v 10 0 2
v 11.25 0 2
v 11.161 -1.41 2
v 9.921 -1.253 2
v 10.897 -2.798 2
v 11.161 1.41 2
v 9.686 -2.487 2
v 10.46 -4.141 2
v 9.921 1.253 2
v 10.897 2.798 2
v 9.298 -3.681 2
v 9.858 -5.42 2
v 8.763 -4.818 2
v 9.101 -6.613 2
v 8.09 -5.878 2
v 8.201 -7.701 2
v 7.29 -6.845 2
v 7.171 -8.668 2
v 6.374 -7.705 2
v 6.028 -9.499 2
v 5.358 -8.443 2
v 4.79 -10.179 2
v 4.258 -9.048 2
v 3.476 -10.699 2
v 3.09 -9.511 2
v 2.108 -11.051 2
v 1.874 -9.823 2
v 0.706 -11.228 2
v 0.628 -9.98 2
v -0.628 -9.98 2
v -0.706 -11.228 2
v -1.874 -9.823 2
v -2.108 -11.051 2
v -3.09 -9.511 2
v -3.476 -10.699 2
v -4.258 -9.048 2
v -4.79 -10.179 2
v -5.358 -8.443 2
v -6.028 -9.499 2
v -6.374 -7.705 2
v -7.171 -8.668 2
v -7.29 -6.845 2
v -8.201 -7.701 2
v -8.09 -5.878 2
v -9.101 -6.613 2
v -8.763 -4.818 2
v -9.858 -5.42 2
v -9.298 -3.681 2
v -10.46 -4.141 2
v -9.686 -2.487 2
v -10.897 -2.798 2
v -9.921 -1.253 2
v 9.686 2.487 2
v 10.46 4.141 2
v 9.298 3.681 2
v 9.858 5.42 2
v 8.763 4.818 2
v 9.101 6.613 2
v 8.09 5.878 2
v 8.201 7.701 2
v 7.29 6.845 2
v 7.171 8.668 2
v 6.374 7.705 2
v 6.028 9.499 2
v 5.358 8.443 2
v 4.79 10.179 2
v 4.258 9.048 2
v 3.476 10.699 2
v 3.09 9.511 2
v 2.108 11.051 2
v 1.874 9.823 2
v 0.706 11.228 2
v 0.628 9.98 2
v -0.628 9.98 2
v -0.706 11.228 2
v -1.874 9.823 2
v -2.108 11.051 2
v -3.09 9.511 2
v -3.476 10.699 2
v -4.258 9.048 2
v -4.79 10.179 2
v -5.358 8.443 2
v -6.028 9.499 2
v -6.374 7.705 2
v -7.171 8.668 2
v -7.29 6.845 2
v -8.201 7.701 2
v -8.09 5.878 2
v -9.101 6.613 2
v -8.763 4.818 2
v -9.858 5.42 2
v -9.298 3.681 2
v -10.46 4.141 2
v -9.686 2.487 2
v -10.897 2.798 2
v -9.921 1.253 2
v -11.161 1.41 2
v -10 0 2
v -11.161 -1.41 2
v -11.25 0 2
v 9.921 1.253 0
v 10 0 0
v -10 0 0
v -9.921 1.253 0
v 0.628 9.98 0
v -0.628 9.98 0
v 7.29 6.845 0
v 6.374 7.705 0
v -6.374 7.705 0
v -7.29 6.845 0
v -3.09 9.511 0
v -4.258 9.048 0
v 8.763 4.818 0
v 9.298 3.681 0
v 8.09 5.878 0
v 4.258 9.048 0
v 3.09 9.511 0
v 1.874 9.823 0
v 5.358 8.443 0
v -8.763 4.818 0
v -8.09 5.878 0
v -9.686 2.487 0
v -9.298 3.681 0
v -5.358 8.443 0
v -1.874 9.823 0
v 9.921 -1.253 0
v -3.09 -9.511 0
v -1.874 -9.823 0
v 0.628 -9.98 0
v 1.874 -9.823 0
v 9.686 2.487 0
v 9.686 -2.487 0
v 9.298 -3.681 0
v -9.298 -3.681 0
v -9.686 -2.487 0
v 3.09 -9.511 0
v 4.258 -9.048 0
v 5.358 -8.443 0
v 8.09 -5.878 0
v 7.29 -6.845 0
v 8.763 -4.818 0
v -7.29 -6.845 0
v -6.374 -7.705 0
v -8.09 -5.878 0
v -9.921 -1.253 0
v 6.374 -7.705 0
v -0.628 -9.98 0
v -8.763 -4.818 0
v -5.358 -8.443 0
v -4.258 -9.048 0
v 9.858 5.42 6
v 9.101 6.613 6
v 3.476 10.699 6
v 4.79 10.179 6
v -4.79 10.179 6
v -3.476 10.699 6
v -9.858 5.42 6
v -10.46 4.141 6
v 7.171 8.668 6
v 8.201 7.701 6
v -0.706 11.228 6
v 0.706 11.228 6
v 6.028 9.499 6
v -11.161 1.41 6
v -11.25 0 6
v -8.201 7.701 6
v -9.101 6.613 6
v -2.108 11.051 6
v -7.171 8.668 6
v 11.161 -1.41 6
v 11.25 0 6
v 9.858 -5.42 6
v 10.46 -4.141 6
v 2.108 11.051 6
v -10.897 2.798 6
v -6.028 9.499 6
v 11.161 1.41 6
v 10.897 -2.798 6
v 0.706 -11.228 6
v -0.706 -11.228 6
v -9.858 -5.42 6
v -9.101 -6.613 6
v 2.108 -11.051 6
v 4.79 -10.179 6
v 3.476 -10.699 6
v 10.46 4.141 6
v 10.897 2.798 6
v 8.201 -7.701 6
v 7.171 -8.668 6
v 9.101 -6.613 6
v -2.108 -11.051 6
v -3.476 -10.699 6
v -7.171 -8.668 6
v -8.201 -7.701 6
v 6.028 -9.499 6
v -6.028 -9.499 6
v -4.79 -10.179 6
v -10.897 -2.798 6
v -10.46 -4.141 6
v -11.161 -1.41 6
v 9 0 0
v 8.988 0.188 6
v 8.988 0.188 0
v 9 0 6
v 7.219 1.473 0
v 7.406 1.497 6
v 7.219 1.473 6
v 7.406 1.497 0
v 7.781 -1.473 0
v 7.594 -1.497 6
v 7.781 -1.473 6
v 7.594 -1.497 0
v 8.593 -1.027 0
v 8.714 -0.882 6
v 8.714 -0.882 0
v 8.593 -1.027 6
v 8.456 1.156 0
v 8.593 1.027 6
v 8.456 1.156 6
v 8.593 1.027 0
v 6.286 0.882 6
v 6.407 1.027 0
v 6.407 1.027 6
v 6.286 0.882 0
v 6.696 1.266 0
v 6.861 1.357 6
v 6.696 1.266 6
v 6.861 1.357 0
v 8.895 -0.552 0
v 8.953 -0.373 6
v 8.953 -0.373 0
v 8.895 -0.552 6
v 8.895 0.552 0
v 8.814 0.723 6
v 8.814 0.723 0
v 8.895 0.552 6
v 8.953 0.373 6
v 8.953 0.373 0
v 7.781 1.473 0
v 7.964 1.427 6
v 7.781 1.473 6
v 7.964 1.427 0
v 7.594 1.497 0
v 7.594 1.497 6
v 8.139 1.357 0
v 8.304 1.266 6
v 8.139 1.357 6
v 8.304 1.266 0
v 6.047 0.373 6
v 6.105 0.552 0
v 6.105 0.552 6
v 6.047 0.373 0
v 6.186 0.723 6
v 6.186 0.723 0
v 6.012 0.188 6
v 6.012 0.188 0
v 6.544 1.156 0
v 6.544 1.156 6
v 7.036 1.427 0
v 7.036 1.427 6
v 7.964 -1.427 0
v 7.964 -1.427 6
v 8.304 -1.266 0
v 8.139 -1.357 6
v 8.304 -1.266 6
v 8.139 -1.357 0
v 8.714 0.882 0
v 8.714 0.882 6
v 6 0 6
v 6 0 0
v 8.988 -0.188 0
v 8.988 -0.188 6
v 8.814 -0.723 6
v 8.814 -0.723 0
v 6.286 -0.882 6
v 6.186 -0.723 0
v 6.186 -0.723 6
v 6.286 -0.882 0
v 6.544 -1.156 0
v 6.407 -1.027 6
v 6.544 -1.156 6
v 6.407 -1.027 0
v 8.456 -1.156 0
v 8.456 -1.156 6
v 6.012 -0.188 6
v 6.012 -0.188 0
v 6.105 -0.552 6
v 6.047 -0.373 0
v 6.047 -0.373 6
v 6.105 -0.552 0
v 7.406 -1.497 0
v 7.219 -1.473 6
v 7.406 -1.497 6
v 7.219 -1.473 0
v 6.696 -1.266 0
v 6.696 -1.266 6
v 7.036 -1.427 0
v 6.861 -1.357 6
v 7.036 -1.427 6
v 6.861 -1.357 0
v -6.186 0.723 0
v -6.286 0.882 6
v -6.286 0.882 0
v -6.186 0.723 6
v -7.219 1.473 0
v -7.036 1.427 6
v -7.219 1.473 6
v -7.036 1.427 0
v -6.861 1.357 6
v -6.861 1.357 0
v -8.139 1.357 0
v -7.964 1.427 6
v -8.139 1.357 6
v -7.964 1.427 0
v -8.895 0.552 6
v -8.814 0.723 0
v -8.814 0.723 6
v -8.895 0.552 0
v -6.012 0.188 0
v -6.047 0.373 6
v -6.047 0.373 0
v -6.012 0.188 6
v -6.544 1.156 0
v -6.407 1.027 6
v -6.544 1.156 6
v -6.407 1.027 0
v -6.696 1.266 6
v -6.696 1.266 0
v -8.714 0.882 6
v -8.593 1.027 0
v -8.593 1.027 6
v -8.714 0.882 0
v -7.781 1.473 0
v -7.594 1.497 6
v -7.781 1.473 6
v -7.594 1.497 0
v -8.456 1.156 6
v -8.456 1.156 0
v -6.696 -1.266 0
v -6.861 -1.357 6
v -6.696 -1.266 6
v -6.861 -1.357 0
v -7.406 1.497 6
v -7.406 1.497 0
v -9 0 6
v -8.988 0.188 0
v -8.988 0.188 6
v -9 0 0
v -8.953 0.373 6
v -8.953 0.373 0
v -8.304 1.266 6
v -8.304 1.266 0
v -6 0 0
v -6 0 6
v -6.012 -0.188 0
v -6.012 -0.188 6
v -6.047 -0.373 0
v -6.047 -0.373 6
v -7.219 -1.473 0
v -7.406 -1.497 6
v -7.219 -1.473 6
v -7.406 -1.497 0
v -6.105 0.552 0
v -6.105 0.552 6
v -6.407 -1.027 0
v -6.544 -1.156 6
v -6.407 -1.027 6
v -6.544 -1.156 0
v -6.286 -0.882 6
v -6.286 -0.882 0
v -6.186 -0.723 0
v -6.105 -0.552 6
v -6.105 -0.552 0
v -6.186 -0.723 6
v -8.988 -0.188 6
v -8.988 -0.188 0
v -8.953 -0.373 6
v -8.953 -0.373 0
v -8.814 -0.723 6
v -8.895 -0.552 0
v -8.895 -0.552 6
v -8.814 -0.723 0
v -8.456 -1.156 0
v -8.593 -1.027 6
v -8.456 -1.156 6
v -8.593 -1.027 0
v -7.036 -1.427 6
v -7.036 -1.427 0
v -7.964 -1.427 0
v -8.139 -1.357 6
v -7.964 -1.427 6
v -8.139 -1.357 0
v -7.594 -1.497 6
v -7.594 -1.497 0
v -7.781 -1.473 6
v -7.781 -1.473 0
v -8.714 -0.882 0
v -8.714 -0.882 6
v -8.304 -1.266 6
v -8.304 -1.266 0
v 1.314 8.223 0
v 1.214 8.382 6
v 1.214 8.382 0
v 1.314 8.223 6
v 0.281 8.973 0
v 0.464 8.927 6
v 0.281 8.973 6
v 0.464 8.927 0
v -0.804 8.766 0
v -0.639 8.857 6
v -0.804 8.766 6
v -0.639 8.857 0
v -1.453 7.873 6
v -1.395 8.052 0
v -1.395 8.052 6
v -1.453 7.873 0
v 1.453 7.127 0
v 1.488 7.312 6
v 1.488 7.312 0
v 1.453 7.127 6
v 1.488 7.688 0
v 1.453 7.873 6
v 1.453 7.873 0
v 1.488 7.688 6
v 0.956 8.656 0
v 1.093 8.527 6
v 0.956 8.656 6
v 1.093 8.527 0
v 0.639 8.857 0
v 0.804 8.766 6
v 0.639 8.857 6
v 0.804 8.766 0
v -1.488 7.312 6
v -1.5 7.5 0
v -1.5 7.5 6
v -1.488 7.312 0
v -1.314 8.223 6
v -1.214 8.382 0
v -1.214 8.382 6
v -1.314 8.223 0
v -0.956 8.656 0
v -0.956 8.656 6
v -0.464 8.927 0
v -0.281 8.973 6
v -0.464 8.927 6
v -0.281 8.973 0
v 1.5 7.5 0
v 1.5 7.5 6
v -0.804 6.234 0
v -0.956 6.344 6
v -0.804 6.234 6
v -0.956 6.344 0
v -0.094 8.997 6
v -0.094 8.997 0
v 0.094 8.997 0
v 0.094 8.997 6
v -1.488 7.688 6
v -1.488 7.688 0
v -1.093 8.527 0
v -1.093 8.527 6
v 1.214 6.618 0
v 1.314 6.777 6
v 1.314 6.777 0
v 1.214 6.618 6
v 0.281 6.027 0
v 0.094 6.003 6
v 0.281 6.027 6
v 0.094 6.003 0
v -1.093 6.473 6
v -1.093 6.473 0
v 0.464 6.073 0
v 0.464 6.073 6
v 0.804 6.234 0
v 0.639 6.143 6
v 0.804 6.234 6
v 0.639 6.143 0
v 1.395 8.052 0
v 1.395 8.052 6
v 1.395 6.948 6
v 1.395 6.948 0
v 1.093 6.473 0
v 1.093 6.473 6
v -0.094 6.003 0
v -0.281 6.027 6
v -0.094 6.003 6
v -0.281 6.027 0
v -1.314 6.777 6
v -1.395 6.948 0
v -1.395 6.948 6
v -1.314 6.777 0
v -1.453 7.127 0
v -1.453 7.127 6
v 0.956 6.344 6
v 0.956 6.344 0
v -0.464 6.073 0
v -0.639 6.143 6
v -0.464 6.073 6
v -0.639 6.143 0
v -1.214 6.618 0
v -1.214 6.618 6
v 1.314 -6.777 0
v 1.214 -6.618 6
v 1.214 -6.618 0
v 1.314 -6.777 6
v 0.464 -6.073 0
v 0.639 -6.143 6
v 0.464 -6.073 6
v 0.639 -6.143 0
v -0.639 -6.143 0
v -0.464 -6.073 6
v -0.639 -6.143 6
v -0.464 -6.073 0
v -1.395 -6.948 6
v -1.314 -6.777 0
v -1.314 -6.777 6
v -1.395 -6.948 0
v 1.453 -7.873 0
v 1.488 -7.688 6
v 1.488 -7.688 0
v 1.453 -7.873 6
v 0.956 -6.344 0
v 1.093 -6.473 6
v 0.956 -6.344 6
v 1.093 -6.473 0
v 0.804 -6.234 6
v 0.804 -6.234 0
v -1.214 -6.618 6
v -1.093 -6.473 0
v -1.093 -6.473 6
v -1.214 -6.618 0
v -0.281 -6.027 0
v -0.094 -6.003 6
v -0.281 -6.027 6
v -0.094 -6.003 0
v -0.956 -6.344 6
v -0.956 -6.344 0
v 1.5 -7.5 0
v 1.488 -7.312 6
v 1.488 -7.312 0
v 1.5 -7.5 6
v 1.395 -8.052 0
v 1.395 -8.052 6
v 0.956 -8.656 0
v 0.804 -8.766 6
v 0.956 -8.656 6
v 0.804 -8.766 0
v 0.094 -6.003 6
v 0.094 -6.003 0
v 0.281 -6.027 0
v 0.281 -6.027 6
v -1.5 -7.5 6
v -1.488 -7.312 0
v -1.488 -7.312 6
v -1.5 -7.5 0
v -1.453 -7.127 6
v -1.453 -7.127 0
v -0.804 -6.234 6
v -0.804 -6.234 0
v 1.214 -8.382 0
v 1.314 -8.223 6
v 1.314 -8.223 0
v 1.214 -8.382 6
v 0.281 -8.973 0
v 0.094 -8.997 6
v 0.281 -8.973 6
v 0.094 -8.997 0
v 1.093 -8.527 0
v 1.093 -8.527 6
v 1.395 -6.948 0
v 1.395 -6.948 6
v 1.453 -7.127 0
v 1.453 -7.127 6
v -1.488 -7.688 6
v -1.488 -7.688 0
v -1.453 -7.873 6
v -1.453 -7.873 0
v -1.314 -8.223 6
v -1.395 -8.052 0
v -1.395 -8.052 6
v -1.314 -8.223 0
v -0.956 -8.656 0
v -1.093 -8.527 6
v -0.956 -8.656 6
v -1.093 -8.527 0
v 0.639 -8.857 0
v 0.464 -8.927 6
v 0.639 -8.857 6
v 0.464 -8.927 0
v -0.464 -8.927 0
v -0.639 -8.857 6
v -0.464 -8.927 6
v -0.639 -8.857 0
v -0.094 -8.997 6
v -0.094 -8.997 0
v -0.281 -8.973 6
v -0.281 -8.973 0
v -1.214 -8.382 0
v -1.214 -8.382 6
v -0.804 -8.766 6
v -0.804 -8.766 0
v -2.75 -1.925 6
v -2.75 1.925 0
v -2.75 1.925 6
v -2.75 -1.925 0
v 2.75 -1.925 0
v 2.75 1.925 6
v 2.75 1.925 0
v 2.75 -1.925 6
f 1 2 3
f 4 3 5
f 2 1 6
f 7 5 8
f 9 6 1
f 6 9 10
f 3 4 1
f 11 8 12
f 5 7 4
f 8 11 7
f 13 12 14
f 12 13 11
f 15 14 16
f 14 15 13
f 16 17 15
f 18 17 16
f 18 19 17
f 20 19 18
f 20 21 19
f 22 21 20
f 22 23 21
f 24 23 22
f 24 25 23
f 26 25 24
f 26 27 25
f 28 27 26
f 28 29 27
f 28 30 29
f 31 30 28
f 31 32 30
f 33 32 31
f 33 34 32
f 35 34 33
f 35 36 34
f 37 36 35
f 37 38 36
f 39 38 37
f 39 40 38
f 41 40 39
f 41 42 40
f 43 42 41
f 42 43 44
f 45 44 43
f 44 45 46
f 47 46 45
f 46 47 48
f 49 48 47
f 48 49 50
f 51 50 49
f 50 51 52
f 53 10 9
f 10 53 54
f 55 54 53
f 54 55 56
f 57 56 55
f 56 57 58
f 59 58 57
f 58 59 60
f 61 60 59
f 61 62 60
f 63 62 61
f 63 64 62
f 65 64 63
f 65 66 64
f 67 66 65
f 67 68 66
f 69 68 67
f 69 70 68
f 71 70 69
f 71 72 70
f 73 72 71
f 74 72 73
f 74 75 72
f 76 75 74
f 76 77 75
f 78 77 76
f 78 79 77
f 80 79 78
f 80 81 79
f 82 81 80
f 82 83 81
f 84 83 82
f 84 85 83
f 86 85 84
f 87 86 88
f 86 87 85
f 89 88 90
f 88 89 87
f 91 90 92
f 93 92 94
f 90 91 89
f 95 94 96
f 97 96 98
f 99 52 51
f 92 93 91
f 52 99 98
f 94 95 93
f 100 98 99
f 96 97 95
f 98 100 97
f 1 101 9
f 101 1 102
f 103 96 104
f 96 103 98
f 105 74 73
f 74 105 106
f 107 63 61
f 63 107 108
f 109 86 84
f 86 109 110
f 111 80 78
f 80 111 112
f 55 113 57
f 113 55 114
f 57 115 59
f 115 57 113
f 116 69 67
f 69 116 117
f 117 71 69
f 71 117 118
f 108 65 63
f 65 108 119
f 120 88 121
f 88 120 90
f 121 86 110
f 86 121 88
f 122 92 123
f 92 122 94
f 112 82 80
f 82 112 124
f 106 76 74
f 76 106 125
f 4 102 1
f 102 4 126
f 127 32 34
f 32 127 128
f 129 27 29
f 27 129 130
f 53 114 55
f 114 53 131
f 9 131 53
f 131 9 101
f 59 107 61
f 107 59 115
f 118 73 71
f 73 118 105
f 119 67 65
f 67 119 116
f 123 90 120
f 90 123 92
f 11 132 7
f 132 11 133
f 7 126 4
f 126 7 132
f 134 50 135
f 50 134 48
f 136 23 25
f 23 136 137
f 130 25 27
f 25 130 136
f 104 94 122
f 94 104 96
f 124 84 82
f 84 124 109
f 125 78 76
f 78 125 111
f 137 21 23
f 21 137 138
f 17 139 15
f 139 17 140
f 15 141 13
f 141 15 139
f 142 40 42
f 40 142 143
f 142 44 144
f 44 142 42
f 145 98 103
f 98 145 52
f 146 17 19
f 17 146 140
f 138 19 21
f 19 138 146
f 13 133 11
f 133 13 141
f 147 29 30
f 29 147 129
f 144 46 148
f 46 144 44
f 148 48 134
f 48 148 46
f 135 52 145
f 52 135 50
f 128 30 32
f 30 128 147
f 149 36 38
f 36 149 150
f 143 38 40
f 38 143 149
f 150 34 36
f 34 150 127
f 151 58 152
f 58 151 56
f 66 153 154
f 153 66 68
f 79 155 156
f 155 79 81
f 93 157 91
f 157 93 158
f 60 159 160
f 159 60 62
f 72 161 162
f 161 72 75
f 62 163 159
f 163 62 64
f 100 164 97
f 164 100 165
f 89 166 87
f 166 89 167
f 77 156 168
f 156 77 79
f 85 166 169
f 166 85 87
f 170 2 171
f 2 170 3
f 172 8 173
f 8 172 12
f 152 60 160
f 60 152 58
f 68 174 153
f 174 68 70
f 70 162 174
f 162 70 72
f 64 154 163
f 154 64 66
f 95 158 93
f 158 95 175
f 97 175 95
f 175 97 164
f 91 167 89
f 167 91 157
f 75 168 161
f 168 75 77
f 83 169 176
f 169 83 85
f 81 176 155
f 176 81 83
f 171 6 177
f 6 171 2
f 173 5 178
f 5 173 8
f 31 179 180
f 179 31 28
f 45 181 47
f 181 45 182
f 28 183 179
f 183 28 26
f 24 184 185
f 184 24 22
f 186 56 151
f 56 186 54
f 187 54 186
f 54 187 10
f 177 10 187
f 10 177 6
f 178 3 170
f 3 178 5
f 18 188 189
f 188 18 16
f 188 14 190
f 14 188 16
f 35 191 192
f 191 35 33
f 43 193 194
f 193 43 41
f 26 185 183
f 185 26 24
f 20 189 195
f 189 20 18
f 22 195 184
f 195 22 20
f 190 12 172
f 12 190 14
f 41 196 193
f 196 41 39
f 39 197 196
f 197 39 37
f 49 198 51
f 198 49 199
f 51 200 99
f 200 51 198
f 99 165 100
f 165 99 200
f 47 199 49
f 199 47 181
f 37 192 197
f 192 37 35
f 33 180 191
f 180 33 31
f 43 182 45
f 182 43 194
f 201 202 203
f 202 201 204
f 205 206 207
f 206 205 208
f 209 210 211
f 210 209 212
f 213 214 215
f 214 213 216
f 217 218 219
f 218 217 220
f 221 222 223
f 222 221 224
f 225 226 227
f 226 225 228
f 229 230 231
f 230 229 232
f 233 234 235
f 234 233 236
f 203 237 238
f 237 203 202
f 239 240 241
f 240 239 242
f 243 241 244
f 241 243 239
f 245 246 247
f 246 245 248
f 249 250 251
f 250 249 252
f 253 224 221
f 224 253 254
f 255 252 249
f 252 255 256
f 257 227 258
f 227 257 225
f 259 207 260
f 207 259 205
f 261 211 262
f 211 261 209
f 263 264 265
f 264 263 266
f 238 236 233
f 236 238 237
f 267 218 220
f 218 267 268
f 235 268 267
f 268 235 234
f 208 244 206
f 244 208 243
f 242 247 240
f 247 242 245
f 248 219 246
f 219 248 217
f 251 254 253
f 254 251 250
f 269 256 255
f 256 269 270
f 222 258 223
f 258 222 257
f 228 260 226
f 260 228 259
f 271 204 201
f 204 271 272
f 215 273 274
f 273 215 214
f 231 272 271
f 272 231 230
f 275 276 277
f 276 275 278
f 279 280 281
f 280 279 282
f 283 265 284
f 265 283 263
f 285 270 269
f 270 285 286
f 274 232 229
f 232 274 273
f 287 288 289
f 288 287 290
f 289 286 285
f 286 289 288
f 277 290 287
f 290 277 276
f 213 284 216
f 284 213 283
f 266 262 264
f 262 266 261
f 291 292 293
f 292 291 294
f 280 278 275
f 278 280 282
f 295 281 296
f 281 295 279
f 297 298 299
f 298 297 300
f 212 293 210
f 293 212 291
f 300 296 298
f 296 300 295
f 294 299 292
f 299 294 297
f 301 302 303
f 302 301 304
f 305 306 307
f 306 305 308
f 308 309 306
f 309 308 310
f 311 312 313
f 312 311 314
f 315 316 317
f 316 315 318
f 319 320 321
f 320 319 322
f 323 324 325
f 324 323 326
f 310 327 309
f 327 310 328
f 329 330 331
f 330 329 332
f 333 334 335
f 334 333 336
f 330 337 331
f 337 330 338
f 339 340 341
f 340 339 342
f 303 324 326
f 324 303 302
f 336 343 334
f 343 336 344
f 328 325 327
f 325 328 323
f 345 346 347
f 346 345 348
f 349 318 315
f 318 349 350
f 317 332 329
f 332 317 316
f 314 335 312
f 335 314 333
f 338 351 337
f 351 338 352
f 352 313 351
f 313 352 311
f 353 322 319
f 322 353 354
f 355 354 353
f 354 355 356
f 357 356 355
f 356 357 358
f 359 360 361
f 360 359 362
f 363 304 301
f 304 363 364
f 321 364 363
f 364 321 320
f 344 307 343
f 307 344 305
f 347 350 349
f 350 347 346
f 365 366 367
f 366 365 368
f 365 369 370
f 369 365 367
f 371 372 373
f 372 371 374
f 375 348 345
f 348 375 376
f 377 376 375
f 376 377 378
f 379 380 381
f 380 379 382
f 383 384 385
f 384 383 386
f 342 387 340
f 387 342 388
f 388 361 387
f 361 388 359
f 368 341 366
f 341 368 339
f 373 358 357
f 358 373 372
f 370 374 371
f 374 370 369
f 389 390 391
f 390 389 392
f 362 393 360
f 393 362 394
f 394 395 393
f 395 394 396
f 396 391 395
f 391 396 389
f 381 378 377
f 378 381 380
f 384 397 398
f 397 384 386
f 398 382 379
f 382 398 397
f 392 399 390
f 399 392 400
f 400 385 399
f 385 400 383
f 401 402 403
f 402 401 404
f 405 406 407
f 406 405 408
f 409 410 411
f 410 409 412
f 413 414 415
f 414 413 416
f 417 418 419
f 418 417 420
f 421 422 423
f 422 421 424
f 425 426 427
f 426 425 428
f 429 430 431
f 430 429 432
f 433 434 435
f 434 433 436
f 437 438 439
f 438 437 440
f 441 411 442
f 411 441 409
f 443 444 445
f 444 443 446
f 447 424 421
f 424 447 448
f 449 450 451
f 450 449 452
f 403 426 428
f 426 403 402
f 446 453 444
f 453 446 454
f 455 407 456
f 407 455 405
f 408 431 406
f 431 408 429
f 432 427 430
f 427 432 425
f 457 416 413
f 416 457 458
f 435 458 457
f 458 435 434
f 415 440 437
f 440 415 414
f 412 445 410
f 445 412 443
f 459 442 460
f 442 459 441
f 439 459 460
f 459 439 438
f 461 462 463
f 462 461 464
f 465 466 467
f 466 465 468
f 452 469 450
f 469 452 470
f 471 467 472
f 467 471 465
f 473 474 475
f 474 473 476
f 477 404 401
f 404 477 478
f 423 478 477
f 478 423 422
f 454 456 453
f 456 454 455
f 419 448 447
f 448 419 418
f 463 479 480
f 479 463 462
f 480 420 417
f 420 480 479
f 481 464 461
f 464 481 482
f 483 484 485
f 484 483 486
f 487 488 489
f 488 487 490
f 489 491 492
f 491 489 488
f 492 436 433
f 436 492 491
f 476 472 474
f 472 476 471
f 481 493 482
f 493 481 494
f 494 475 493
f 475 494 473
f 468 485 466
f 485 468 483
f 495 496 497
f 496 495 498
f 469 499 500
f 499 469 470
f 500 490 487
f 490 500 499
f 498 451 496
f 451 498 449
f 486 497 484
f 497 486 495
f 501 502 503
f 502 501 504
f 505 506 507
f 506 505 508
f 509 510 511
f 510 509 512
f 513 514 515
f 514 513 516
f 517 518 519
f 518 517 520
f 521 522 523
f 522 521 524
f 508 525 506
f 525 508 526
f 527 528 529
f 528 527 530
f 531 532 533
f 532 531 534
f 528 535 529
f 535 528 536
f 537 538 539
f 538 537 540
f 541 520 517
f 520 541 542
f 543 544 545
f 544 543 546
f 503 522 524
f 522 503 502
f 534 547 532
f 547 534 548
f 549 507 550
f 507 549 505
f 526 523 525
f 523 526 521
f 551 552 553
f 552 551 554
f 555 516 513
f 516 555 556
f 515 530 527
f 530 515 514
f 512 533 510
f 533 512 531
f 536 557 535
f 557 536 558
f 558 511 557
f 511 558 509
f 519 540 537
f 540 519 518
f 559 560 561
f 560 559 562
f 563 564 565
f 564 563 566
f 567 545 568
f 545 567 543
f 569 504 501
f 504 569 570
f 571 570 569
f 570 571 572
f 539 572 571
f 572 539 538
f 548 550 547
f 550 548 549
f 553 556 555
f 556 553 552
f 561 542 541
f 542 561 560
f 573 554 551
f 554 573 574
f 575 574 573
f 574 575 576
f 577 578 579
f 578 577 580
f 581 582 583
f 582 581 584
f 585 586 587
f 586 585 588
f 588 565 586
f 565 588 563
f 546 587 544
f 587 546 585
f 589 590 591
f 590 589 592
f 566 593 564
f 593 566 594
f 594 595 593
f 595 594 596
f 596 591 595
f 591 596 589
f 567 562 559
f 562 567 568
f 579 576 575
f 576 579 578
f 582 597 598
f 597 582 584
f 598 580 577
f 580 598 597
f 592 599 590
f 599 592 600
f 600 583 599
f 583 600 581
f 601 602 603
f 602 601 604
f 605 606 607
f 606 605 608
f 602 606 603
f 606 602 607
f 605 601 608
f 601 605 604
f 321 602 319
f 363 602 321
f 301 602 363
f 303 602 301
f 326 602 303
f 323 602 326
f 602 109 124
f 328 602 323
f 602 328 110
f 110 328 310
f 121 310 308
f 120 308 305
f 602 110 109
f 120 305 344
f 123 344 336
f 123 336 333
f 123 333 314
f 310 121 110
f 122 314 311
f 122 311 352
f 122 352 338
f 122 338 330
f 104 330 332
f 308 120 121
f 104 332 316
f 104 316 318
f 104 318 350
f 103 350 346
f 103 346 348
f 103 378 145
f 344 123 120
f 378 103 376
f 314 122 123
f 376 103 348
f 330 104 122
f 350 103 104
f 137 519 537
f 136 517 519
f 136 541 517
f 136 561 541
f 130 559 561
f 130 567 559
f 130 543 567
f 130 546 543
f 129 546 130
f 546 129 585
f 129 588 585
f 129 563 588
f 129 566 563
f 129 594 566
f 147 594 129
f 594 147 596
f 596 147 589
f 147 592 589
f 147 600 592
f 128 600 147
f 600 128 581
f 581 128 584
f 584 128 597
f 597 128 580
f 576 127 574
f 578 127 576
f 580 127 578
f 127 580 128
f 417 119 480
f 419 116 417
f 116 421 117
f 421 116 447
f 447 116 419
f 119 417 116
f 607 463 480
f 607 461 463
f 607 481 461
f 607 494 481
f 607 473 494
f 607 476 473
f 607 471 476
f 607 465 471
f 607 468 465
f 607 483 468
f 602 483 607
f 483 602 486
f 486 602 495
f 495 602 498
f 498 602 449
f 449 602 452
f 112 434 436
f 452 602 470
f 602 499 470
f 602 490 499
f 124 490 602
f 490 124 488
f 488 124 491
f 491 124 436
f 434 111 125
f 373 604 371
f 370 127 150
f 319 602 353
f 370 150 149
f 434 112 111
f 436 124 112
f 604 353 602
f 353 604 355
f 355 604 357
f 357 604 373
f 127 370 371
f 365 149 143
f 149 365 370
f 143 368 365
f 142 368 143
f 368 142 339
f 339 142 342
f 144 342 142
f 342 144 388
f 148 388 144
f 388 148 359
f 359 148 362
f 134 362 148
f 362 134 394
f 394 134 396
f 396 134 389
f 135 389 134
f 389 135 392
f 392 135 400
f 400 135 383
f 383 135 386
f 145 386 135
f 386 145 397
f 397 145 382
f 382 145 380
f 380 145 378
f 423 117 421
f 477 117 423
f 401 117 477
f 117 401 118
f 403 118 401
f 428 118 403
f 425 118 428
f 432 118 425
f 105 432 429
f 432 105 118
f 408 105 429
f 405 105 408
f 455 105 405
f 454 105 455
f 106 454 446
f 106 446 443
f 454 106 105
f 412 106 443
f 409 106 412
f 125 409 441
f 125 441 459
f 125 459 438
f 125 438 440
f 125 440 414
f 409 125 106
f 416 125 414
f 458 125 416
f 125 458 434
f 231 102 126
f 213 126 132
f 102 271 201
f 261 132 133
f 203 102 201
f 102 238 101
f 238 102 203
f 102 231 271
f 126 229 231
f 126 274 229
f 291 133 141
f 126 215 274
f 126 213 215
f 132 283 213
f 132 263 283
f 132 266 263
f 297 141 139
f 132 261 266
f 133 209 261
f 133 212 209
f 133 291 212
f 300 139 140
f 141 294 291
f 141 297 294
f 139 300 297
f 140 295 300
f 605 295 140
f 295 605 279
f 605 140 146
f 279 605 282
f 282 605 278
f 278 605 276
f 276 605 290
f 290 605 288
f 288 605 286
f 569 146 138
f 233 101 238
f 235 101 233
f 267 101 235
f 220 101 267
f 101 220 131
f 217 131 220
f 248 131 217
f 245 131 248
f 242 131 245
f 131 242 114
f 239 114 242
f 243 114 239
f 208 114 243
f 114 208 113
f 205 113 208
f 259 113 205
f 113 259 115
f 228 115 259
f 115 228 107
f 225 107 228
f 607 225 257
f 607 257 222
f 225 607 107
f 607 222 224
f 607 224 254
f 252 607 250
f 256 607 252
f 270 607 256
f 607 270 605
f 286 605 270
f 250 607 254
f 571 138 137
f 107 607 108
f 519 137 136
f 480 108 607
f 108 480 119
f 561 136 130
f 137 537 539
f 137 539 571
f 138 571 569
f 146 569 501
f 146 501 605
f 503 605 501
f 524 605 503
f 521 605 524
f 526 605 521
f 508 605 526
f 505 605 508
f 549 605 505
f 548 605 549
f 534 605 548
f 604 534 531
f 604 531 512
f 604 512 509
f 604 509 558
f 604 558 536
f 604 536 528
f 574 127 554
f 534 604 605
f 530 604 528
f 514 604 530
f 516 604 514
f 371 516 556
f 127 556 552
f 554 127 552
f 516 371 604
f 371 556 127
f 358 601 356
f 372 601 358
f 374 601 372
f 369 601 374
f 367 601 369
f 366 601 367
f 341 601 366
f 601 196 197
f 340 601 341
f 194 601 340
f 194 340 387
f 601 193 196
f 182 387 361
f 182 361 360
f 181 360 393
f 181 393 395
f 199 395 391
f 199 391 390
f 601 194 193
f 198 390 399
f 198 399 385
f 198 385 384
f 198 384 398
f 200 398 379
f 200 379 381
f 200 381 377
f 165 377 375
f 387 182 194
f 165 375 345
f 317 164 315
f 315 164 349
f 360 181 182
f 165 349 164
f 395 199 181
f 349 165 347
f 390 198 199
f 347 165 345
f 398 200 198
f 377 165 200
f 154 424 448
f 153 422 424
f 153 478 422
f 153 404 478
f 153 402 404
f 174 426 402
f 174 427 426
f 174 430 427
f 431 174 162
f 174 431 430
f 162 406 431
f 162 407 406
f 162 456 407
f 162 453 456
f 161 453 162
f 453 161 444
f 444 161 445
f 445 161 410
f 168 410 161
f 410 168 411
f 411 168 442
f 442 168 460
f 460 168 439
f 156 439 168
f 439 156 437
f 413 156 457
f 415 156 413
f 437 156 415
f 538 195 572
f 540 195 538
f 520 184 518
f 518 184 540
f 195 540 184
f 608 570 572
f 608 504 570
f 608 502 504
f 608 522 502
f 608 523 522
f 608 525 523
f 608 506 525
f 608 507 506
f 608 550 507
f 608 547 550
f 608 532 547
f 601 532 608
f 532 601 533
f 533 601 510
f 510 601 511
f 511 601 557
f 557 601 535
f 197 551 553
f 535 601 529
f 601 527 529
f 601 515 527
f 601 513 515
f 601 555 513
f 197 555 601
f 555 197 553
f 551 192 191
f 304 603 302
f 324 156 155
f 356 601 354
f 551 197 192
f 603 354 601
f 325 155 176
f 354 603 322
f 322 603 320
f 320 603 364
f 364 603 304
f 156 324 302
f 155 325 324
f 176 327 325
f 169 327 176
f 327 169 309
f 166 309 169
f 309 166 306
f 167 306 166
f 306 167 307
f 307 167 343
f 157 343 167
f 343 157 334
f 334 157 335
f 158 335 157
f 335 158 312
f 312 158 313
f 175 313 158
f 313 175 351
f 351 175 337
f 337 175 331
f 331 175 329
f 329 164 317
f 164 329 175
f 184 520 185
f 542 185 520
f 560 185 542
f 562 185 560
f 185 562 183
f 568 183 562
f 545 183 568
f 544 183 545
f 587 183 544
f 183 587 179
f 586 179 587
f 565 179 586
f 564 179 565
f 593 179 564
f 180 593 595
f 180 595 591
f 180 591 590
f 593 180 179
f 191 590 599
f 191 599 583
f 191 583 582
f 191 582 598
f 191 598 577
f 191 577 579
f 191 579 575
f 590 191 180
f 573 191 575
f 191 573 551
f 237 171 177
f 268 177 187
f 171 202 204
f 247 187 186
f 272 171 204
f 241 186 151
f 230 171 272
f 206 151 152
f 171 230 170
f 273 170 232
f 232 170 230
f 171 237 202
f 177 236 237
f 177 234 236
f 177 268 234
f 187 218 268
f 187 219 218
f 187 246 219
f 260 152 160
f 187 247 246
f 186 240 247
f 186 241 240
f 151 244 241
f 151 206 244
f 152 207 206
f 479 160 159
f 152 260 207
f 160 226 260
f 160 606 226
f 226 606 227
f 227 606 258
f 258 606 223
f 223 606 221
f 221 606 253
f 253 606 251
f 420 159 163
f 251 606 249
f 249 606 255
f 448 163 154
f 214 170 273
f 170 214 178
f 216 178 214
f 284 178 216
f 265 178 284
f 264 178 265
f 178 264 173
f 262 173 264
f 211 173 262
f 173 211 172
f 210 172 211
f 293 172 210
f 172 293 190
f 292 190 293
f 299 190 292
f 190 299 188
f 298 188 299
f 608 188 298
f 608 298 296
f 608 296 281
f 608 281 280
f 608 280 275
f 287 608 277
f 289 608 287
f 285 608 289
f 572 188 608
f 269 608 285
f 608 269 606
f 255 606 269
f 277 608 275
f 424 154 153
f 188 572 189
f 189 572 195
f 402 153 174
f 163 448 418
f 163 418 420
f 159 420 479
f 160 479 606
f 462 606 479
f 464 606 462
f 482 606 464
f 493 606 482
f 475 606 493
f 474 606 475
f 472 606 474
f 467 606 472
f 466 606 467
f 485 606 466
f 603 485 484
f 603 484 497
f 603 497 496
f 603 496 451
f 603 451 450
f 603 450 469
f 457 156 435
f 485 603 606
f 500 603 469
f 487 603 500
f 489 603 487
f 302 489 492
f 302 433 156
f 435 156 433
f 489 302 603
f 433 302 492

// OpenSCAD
$fn = 50;


difference() {
	union() {
		*color(alpha = 1.0000000000, c = "gray") {
			translate(v = [0, 7, 0]) {
				linear_extrude(height = 12) {
					text(font = "Arial:style=Bold", halign = "center", size = 4.5000000000, text = "COMMENT bearing_plate_plate", valign = "center");
				}
			}
		}
		*color(alpha = 1.0000000000, c = "gray") {
			translate(v = [0, 14, 0]) {
				linear_extrude(height = 12) {
					text(font = "Arial:style=Bold", halign = "center", size = 4.5000000000, text = "COMMENT description oobb_cylinder_shape_positive_type_12_depth_3_width_12_height_12_thickness_6704_bearing_motor_gearmotor_01_shaft_11.7_radius_all_mode", valign = "center");
				}
			}
		}
		translate(v = [0, 0, -6.0000000000]) {
			cylinder(h = 12, r = 11.7000000000);
		}
		*color(alpha = 1.0000000000, c = "gray") {
			translate(v = [0, 7, 0]) {
				linear_extrude(height = 1) {
					text(font = "Arial:style=Bold", halign = "center", size = 4.5000000000, text = "COMMENT bearing_plate_slice", valign = "center");
				}
			}
		}
	}
	union() {
		translate(v = [18.0000000000, 0, 6.0000000000]) {
			rotate(a = [0, 180, 30.0000000000]) {
				difference() {
					union() {
						translate(v = [0, 0, -1.7000000000]) {
							cylinder(h = 1.7000000000, r1 = 1.5000000000, r2 = 2.4000000000);
						}
						translate(v = [0, 0, -12.0000000000]) {
							cylinder(h = 12, r = 1.5000000000);
						}
						translate(v = [0, 0, -12.0000000000]) {
							linear_extrude(height = 2.5000000000) {
								polygon(points = [[3.1735000000, 0.0000000000], [1.5867500000, 2.7483316189], [-1.5867500000, 2.7483316189], [-3.1735000000, 0.0000000000], [-1.5867500000, -2.7483316189], [1.5867500000, -2.7483316189]]);
							}
						}
						translate(v = [0, 0, -12.0000000000]) {
							cylinder(h = 12, r = 1.8000000000);
						}
						translate(v = [0, 0, -12.0000000000]) {
							linear_extrude(height = 2.5000000000) {
								polygon(points = [[3.1735000000, 0.0000000000], [1.5867500000, 2.7483316189], [-1.5867500000, 2.7483316189], [-3.1735000000, 0.0000000000], [-1.5867500000, -2.7483316189], [1.5867500000, -2.7483316189]]);
							}
						}
						translate(v = [0, 0, -12.0000000000]) {
							cylinder(h = 12, r = 1.5000000000);
						}
						translate(v = [0, 0, -12.0000000000]) {
							linear_extrude(height = 2.5000000000) {
								polygon(points = [[3.1735000000, 0.0000000000], [1.5867500000, 2.7483316189], [-1.5867500000, 2.7483316189], [-3.1735000000, 0.0000000000], [-1.5867500000, -2.7483316189], [1.5867500000, -2.7483316189]]);
							}
						}
					}
					union();
				}
			}
		}
		translate(v = [-18.0000000000, 0, 6.0000000000]) {
			rotate(a = [0, 180, 30.0000000000]) {
				difference() {
					union() {
						translate(v = [0, 0, -1.7000000000]) {
							cylinder(h = 1.7000000000, r1 = 1.5000000000, r2 = 2.4000000000);
						}
						translate(v = [0, 0, -12.0000000000]) {
							cylinder(h = 12, r = 1.5000000000);
						}
						translate(v = [0, 0, -12.0000000000]) {
							linear_extrude(height = 2.5000000000) {
								polygon(points = [[3.1735000000, 0.0000000000], [1.5867500000, 2.7483316189], [-1.5867500000, 2.7483316189], [-3.1735000000, 0.0000000000], [-1.5867500000, -2.7483316189], [1.5867500000, -2.7483316189]]);
							}
						}
						translate(v = [0, 0, -12.0000000000]) {
							cylinder(h = 12, r = 1.8000000000);
						}
						translate(v = [0, 0, -12.0000000000]) {
							linear_extrude(height = 2.5000000000) {
								polygon(points = [[3.1735000000, 0.0000000000], [1.5867500000, 2.7483316189], [-1.5867500000, 2.7483316189], [-3.1735000000, 0.0000000000], [-1.5867500000, -2.7483316189], [1.5867500000, -2.7483316189]]);
							}
						}
						translate(v = [0, 0, -12.0000000000]) {
							cylinder(h = 12, r = 1.5000000000);
						}
						translate(v = [0, 0, -12.0000000000]) {
							linear_extrude(height = 2.5000000000) {
								polygon(points = [[3.1735000000, 0.0000000000], [1.5867500000, 2.7483316189], [-1.5867500000, 2.7483316189], [-3.1735000000, 0.0000000000], [-1.5867500000, -2.7483316189], [1.5867500000, -2.7483316189]]);
							}
						}
					}
					union();
				}
			}
		}
		translate(v = [0, 18.0000000000, -6.0000000000]) {
			rotate(a = [0, 0, 0]) {
				difference() {
					union() {
						translate(v = [0, 0, -1.7000000000]) {
							cylinder(h = 1.7000000000, r1 = 1.5000000000, r2 = 2.4000000000);
						}
						translate(v = [0, 0, -12.0000000000]) {
							cylinder(h = 12, r = 1.5000000000);
						}
						translate(v = [0, 0, -12.0000000000]) {
							linear_extrude(height = 2.5000000000) {
								polygon(points = [[3.1735000000, 0.0000000000], [1.5867500000, 2.7483316189], [-1.5867500000, 2.7483316189], [-3.1735000000, 0.0000000000], [-1.5867500000, -2.7483316189], [1.5867500000, -2.7483316189]]);
							}
						}
						translate(v = [0, 0, -12.0000000000]) {
							cylinder(h = 12, r = 1.8000000000);
						}
						translate(v = [0, 0, -12.0000000000]) {
							linear_extrude(height = 2.5000000000) {
								polygon(points = [[3.1735000000, 0.0000000000], [1.5867500000, 2.7483316189], [-1.5867500000, 2.7483316189], [-3.1735000000, 0.0000000000], [-1.5867500000, -2.7483316189], [1.5867500000, -2.7483316189]]);
							}
						}
						translate(v = [0, 0, -12.0000000000]) {
							cylinder(h = 12, r = 1.5000000000);
						}
						translate(v = [0, 0, -12.0000000000]) {
							linear_extrude(height = 2.5000000000) {
								polygon(points = [[3.1735000000, 0.0000000000], [1.5867500000, 2.7483316189], [-1.5867500000, 2.7483316189], [-3.1735000000, 0.0000000000], [-1.5867500000, -2.7483316189], [1.5867500000, -2.7483316189]]);
							}
						}
					}
					union();
				}
			}
		}
		translate(v = [0, -18.0000000000, -6.0000000000]) {
			rotate(a = [0, 0, 0]) {
				difference() {
					union() {
						translate(v = [0, 0, -1.7000000000]) {
							cylinder(h = 1.7000000000, r1 = 1.5000000000, r2 = 2.4000000000);
						}
						translate(v = [0, 0, -12.0000000000]) {
							cylinder(h = 12, r = 1.5000000000);
						}
						translate(v = [0, 0, -12.0000000000]) {
							linear_extrude(height = 2.5000000000) {
								polygon(points = [[3.1735000000, 0.0000000000], [1.5867500000, 2.7483316189], [-1.5867500000, 2.7483316189], [-3.1735000000, 0.0000000000], [-1.5867500000, -2.7483316189], [1.5867500000, -2.7483316189]]);
							}
						}
						translate(v = [0, 0, -12.0000000000]) {
							cylinder(h = 12, r = 1.8000000000);
						}
						translate(v = [0, 0, -12.0000000000]) {
							linear_extrude(height = 2.5000000000) {
								polygon(points = [[3.1735000000, 0.0000000000], [1.5867500000, 2.7483316189], [-1.5867500000, 2.7483316189], [-3.1735000000, 0.0000000000], [-1.5867500000, -2.7483316189], [1.5867500000, -2.7483316189]]);
							}
						}
						translate(v = [0, 0, -12.0000000000]) {
							cylinder(h = 12, r = 1.5000000000);
						}
						translate(v = [0, 0, -12.0000000000]) {
							linear_extrude(height = 2.5000000000) {
								polygon(points = [[3.1735000000, 0.0000000000], [1.5867500000, 2.7483316189], [-1.5867500000, 2.7483316189], [-3.1735000000, 0.0000000000], [-1.5867500000, -2.7483316189], [1.5867500000, -2.7483316189]]);
							}
						}
					}
					union();
				}
			}
		}
		*color(alpha = 1.0000000000, c = "gray") {
			translate(v = [0, 14, 0]) {
				linear_extrude(height = 3) {
					text(font = "Arial:style=Bold", halign = "center", size = 4.5000000000, text = "COMMENT description oobb_bearing_shape_n_type_12_depth_3_width_3_height_12_thickness_6704_bearing_motor_gearmotor_01_shaft", valign = "center");
				}
			}
		}
		translate(v = [0, 0, -2.0000000000]) {
			union() {
				difference() {
					cylinder(h = 4, r = 13.5000000000);
					cylinder(h = 4, r = 10.0000000000);
				}
				difference() {
					translate(v = [0, 0, -50]) {
						cylinder(h = 100, r = 12.2500000000);
					}
					translate(v = [0, 0, -50]) {
						cylinder(h = 100, r = 11.2500000000);
					}
				}
			}
		}
		*color(alpha = 1.0000000000, c = "gray") {
			translate(v = [7.5000000000, 14, 0]) {
				linear_extrude(height = 3) {
					text(font = "Arial:style=Bold", halign = "center", size = 4.5000000000, text = "COMMENT description oobb_hole_shape_n_type_m3_radius_name_7.5_0_0_pos_3_width_3_height_12_thickness_6704_bearing_motor_gearmotor_01_shaft_true_hole", valign = "center");
				}
			}
		}
		translate(v = [7.5000000000, 0, -50.0000000000]) {
			cylinder(h = 100, r = 1.5000000000);
		}
		*color(alpha = 1.0000000000, c = "gray") {
			translate(v = [-7.5000000000, 14, 0]) {
				linear_extrude(height = 3) {
					text(font = "Arial:style=Bold", halign = "center", size = 4.5000000000, text = "COMMENT description oobb_hole_shape_n_type_m3_radius_name_-7.5_0_0_pos_3_width_3_height_12_thickness_6704_bearing_motor_gearmotor_01_shaft_true_hole", valign = "center");
				}
			}
		}
		translate(v = [-7.5000000000, 0, -50.0000000000]) {
			cylinder(h = 100, r = 1.5000000000);
		}
		*color(alpha = 1.0000000000, c = "gray") {
			translate(v = [0, 21.5000000000, 0]) {
				linear_extrude(height = 3) {
					text(font = "Arial:style=Bold", halign = "center", size = 4.5000000000, text = "COMMENT description oobb_hole_shape_n_type_m3_radius_name_0_7.5_0_pos_3_width_3_height_12_thickness_6704_bearing_motor_gearmotor_01_shaft_true_hole", valign = "center");
				}
			}
		}
		translate(v = [0, 7.5000000000, -50.0000000000]) {
			cylinder(h = 100, r = 1.5000000000);
		}
		*color(alpha = 1.0000000000, c = "gray") {
			translate(v = [0, 6.5000000000, 0]) {
				linear_extrude(height = 3) {
					text(font = "Arial:style=Bold", halign = "center", size = 4.5000000000, text = "COMMENT description oobb_hole_shape_n_type_m3_radius_name_0_-7.5_0_pos_3_width_3_height_12_thickness_6704_bearing_motor_gearmotor_01_shaft_true_hole", valign = "center");
				}
			}
		}
		translate(v = [0, -7.5000000000, -50.0000000000]) {
			cylinder(h = 100, r = 1.5000000000);
		}
		*color(alpha = 1.0000000000, c = "gray") {
			translate(v = [0, 14, 0]) {
				linear_extrude(height = 3) {
					text(font = "Arial:style=Bold", halign = "center", size = 4.5000000000, text = "COMMENT description oobb_holes_shape_n_type_m6_radius_name_3_width_3_height_12_thickness_6704_bearing_motor_gearmotor_01_shaft_perimeter_miss_middle_holes", valign = "center");
				}
			}
		}
		translate(v = [-15.0000000000, -15.0000000000, -50.0000000000]) {
			cylinder(h = 100, r = 3.0000000000);
		}
		translate(v = [-15.0000000000, 15.0000000000, -50.0000000000]) {
			cylinder(h = 100, r = 3.0000000000);
		}
		translate(v = [15.0000000000, -15.0000000000, -50.0000000000]) {
			cylinder(h = 100, r = 3.0000000000);
		}
		translate(v = [15.0000000000, 15.0000000000, -50.0000000000]) {
			cylinder(h = 100, r = 3.0000000000);
		}
		*color(alpha = 1.0000000000, c = "gray") {
			translate(v = [0, 14, 0]) {
				linear_extrude(height = 3) {
					text(font = "Arial:style=Bold", halign = "center", size = 4.5000000000, text = "COMMENT description oobb_motor_gearmotor_01_shape_n_type_3_width_3_height_12_thickness_6704_bearing_motor_gearmotor_01_shaft_shaft_part", valign = "center");
				}
			}
		}
		translate(v = [-2.7500000000, -1.9250000000, -50]) {
			cube(size = [5.5000000000, 3.8500000000, 100]);
		}
		*color(alpha = 1.0000000000, c = "gray") {
			translate(v = [18.0000000000, 14, 6.0000000000]) {
				rotate(a = [0, 180, 30.0000000000]) {
					linear_extrude(height = 3) {
						text(font = "Arial:style=Bold", halign = "center", size = 4.5000000000, text = "COMMENT description oobb_screw_countersunk_shape_n_type_m3_radius_name_12_depth_18.0_0_6.0_pos_3_width_3_height_12_thickness_6704_bearing_motor_gearmotor_01_shaft_0_180_30.0_rot_true_nut_true_overhang", valign = "center");
					}
				}
			}
		}
		*color(alpha = 1.0000000000, c = "gray") {
			translate(v = [-18.0000000000, 14, 6.0000000000]) {
				rotate(a = [0, 180, 30.0000000000]) {
					linear_extrude(height = 3) {
						text(font = "Arial:style=Bold", halign = "center", size = 4.5000000000, text = "COMMENT description oobb_screw_countersunk_shape_n_type_m3_radius_name_12_depth_-18.0_0_6.0_pos_3_width_3_height_12_thickness_6704_bearing_motor_gearmotor_01_shaft_0_180_30.0_rot_true_nut_true_overhang", valign = "center");
					}
				}
			}
		}
		*color(alpha = 1.0000000000, c = "gray") {
			translate(v = [0, 32.0000000000, -6.0000000000]) {
				linear_extrude(height = 3) {
					text(font = "Arial:style=Bold", halign = "center", size = 4.5000000000, text = "COMMENT description oobb_screw_countersunk_shape_n_type_m3_radius_name_12_depth_0_18.0_-6.0_pos_3_width_3_height_12_thickness_6704_bearing_motor_gearmotor_01_shaft_0_0_0_rot_true_nut_true_overhang", valign = "center");
				}
			}
		}
		*color(alpha = 1.0000000000, c = "gray") {
			translate(v = [0, -4.0000000000, -6.0000000000]) {
				linear_extrude(height = 3) {
					text(font = "Arial:style=Bold", halign = "center", size = 4.5000000000, text = "COMMENT description oobb_screw_countersunk_shape_n_type_m3_radius_name_12_depth_0_-18.0_-6.0_pos_3_width_3_height_12_thickness_6704_bearing_motor_gearmotor_01_shaft_0_0_0_rot_true_nut_true_overhang", valign = "center");
				}
			}
		}
		*color(alpha = 1.0000000000, c = "gray") {
			translate(v = [0, 14, 0]) {
				linear_extrude(height = 1) {
					text(font = "Arial:style=Bold", halign = "center", size = 4.5000000000, text = "COMMENT description oobb_slice_shape_n_type_3dpr_mode_top_zz", valign = "center");
				}
			}
		}
		translate(v = [-250, -250, -500]) {
			cube(size = [500, 500, 500]);
		}
	}
}
